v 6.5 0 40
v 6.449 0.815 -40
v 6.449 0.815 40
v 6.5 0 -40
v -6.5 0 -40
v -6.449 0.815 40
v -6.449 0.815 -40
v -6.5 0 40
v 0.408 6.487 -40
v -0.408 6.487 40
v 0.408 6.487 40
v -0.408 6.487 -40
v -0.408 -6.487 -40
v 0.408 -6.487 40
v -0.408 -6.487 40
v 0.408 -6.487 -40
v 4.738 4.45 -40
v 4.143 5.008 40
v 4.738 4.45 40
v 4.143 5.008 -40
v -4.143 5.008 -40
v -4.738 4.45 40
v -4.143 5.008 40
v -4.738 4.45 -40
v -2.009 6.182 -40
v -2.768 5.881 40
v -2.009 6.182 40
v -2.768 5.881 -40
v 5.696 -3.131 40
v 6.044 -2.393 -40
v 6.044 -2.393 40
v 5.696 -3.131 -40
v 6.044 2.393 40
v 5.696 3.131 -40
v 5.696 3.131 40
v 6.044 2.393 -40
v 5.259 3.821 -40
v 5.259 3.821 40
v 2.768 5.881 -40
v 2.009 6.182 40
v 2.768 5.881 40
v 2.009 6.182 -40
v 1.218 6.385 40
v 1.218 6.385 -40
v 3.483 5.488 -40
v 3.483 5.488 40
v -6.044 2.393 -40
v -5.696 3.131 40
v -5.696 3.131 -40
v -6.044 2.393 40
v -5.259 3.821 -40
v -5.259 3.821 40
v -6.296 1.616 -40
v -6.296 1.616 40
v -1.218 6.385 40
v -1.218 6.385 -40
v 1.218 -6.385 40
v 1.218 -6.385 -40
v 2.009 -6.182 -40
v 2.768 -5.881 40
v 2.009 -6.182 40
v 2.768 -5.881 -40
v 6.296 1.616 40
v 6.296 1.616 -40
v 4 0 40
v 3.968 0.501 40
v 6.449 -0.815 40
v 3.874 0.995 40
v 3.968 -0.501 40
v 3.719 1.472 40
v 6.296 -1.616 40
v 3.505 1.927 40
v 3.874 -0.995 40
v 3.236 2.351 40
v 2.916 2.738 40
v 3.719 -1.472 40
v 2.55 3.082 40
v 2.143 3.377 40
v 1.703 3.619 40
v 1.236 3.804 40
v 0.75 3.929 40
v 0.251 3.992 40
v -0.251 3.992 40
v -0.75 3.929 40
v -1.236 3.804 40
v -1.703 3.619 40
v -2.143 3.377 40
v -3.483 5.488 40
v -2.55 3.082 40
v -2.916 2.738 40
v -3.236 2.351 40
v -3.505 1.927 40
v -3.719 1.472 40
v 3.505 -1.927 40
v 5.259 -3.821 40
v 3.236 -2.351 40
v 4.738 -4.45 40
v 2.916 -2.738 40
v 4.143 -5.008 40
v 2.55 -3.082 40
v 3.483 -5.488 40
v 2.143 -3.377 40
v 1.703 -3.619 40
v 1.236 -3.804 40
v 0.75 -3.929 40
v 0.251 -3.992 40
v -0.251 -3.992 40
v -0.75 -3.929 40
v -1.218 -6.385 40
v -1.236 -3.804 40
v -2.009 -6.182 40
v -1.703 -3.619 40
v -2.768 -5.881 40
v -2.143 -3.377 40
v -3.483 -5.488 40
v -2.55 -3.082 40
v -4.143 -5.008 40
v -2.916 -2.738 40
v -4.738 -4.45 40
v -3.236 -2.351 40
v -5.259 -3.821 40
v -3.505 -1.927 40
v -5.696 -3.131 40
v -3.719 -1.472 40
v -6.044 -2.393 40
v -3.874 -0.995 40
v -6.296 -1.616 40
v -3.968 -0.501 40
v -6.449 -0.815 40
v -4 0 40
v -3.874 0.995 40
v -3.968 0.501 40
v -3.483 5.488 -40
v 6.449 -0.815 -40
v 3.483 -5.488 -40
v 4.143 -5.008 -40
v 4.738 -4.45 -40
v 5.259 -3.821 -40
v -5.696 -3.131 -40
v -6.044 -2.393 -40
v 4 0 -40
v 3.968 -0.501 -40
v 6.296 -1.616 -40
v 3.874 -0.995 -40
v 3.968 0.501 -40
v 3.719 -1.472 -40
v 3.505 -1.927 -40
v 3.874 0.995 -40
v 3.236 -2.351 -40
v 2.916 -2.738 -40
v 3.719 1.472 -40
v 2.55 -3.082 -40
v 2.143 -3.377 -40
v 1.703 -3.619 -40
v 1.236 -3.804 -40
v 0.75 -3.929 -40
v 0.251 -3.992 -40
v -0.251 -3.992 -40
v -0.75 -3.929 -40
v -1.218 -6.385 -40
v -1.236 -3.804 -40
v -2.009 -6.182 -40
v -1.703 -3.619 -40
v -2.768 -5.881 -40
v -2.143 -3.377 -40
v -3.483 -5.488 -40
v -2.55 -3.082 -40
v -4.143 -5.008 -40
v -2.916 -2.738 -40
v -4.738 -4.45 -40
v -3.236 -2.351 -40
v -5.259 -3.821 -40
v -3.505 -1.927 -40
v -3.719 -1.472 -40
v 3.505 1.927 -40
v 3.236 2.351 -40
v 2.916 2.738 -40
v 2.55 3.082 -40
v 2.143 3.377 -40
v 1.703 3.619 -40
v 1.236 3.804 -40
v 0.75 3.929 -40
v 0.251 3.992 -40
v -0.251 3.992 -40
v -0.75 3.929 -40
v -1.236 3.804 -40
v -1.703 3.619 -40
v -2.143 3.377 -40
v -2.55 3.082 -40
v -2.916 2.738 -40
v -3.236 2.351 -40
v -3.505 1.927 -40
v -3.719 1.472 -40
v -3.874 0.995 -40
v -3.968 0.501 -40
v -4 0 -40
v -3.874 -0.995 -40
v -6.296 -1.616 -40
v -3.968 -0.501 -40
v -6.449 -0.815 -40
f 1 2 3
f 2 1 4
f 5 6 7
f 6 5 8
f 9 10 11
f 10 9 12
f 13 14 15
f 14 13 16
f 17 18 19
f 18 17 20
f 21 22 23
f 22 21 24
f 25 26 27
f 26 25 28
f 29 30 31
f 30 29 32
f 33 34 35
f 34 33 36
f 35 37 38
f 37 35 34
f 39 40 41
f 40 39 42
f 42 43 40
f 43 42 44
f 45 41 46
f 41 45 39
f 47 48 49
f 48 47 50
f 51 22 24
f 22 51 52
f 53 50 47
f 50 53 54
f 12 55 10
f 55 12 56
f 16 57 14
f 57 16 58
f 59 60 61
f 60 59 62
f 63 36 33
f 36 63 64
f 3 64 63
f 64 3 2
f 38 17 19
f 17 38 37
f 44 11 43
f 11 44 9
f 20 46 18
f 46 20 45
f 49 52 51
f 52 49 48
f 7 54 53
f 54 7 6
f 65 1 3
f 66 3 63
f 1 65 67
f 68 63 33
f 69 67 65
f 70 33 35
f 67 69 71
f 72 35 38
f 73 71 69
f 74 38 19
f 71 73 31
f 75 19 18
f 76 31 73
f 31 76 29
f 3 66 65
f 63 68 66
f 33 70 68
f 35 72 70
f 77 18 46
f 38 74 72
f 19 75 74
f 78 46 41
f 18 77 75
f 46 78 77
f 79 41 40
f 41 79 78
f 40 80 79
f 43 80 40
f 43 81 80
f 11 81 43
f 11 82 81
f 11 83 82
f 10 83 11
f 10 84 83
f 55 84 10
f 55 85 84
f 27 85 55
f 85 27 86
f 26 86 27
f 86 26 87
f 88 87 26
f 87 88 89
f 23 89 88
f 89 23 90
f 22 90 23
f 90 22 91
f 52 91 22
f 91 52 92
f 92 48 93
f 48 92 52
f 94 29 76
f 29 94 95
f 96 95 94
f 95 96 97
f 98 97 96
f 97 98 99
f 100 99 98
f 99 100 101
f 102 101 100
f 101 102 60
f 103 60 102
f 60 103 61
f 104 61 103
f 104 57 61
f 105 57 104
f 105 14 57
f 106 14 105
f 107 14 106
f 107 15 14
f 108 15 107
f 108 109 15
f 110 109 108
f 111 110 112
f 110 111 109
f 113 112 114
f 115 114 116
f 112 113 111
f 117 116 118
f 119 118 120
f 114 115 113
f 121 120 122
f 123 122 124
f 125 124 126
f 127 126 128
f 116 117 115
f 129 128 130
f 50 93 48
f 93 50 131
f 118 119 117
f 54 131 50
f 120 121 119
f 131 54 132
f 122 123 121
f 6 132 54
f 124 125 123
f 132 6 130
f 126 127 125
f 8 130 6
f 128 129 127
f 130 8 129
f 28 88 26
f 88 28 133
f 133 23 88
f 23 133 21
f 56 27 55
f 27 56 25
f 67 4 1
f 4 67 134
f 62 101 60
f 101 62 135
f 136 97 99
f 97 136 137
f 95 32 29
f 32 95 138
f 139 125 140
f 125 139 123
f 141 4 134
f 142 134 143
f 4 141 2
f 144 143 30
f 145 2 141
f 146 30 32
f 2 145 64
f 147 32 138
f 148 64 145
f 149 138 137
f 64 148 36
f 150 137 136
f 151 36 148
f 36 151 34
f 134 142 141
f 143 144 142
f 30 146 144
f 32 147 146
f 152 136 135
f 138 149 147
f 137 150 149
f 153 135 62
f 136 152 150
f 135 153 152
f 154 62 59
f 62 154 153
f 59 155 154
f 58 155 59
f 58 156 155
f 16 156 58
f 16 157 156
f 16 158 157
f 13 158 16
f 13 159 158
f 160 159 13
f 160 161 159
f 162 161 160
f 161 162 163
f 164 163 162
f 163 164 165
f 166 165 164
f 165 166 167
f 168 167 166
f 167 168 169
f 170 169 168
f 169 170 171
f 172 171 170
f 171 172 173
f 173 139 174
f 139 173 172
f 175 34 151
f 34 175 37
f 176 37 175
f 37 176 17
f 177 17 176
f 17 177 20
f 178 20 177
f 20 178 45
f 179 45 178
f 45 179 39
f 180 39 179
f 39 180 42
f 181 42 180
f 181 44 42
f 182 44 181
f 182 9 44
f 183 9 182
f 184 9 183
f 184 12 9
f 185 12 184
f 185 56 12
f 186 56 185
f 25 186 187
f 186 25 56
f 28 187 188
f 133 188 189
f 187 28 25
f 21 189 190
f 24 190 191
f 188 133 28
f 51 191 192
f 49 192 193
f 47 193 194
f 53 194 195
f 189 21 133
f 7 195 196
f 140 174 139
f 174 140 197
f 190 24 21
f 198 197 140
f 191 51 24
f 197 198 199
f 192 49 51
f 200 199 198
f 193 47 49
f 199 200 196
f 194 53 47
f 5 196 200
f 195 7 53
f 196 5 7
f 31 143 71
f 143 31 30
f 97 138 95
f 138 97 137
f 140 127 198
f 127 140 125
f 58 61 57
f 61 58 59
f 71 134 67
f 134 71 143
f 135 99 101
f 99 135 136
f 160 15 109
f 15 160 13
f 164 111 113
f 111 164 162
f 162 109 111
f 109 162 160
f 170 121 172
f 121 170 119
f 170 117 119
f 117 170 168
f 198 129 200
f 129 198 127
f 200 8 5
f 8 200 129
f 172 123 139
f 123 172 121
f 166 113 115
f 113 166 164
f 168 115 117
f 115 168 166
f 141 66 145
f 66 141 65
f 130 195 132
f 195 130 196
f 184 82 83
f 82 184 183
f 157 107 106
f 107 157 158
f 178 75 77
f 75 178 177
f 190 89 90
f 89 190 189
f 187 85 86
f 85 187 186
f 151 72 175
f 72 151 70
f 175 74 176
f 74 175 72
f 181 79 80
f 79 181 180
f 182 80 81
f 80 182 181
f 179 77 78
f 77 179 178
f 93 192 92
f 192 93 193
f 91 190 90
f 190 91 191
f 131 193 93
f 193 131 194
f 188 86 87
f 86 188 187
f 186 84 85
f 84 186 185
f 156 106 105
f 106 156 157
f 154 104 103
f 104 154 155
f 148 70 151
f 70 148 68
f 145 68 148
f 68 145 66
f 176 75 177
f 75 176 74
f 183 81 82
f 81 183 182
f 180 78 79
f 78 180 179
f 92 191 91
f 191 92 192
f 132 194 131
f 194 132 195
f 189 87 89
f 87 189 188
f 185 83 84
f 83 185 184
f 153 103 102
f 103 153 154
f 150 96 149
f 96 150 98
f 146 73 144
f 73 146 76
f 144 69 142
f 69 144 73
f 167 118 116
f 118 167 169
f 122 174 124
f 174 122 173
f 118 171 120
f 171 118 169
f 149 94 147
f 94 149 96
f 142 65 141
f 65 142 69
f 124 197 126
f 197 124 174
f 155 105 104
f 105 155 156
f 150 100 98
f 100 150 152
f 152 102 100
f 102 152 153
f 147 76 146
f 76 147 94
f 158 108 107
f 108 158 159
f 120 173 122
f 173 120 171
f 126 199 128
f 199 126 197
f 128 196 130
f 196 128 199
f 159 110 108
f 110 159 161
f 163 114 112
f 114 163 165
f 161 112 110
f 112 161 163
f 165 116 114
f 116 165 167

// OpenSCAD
$fn = 50;


difference() {
	union() {
		translate(v = [0, 0, -40.0000000000]) {
			cylinder(h = 80, r = 6.5000000000);
		}
	}
	union() {
		translate(v = [0, 0, -100.0000000000]) {
			cylinder(h = 200, r = 4);
		}
	}
}
